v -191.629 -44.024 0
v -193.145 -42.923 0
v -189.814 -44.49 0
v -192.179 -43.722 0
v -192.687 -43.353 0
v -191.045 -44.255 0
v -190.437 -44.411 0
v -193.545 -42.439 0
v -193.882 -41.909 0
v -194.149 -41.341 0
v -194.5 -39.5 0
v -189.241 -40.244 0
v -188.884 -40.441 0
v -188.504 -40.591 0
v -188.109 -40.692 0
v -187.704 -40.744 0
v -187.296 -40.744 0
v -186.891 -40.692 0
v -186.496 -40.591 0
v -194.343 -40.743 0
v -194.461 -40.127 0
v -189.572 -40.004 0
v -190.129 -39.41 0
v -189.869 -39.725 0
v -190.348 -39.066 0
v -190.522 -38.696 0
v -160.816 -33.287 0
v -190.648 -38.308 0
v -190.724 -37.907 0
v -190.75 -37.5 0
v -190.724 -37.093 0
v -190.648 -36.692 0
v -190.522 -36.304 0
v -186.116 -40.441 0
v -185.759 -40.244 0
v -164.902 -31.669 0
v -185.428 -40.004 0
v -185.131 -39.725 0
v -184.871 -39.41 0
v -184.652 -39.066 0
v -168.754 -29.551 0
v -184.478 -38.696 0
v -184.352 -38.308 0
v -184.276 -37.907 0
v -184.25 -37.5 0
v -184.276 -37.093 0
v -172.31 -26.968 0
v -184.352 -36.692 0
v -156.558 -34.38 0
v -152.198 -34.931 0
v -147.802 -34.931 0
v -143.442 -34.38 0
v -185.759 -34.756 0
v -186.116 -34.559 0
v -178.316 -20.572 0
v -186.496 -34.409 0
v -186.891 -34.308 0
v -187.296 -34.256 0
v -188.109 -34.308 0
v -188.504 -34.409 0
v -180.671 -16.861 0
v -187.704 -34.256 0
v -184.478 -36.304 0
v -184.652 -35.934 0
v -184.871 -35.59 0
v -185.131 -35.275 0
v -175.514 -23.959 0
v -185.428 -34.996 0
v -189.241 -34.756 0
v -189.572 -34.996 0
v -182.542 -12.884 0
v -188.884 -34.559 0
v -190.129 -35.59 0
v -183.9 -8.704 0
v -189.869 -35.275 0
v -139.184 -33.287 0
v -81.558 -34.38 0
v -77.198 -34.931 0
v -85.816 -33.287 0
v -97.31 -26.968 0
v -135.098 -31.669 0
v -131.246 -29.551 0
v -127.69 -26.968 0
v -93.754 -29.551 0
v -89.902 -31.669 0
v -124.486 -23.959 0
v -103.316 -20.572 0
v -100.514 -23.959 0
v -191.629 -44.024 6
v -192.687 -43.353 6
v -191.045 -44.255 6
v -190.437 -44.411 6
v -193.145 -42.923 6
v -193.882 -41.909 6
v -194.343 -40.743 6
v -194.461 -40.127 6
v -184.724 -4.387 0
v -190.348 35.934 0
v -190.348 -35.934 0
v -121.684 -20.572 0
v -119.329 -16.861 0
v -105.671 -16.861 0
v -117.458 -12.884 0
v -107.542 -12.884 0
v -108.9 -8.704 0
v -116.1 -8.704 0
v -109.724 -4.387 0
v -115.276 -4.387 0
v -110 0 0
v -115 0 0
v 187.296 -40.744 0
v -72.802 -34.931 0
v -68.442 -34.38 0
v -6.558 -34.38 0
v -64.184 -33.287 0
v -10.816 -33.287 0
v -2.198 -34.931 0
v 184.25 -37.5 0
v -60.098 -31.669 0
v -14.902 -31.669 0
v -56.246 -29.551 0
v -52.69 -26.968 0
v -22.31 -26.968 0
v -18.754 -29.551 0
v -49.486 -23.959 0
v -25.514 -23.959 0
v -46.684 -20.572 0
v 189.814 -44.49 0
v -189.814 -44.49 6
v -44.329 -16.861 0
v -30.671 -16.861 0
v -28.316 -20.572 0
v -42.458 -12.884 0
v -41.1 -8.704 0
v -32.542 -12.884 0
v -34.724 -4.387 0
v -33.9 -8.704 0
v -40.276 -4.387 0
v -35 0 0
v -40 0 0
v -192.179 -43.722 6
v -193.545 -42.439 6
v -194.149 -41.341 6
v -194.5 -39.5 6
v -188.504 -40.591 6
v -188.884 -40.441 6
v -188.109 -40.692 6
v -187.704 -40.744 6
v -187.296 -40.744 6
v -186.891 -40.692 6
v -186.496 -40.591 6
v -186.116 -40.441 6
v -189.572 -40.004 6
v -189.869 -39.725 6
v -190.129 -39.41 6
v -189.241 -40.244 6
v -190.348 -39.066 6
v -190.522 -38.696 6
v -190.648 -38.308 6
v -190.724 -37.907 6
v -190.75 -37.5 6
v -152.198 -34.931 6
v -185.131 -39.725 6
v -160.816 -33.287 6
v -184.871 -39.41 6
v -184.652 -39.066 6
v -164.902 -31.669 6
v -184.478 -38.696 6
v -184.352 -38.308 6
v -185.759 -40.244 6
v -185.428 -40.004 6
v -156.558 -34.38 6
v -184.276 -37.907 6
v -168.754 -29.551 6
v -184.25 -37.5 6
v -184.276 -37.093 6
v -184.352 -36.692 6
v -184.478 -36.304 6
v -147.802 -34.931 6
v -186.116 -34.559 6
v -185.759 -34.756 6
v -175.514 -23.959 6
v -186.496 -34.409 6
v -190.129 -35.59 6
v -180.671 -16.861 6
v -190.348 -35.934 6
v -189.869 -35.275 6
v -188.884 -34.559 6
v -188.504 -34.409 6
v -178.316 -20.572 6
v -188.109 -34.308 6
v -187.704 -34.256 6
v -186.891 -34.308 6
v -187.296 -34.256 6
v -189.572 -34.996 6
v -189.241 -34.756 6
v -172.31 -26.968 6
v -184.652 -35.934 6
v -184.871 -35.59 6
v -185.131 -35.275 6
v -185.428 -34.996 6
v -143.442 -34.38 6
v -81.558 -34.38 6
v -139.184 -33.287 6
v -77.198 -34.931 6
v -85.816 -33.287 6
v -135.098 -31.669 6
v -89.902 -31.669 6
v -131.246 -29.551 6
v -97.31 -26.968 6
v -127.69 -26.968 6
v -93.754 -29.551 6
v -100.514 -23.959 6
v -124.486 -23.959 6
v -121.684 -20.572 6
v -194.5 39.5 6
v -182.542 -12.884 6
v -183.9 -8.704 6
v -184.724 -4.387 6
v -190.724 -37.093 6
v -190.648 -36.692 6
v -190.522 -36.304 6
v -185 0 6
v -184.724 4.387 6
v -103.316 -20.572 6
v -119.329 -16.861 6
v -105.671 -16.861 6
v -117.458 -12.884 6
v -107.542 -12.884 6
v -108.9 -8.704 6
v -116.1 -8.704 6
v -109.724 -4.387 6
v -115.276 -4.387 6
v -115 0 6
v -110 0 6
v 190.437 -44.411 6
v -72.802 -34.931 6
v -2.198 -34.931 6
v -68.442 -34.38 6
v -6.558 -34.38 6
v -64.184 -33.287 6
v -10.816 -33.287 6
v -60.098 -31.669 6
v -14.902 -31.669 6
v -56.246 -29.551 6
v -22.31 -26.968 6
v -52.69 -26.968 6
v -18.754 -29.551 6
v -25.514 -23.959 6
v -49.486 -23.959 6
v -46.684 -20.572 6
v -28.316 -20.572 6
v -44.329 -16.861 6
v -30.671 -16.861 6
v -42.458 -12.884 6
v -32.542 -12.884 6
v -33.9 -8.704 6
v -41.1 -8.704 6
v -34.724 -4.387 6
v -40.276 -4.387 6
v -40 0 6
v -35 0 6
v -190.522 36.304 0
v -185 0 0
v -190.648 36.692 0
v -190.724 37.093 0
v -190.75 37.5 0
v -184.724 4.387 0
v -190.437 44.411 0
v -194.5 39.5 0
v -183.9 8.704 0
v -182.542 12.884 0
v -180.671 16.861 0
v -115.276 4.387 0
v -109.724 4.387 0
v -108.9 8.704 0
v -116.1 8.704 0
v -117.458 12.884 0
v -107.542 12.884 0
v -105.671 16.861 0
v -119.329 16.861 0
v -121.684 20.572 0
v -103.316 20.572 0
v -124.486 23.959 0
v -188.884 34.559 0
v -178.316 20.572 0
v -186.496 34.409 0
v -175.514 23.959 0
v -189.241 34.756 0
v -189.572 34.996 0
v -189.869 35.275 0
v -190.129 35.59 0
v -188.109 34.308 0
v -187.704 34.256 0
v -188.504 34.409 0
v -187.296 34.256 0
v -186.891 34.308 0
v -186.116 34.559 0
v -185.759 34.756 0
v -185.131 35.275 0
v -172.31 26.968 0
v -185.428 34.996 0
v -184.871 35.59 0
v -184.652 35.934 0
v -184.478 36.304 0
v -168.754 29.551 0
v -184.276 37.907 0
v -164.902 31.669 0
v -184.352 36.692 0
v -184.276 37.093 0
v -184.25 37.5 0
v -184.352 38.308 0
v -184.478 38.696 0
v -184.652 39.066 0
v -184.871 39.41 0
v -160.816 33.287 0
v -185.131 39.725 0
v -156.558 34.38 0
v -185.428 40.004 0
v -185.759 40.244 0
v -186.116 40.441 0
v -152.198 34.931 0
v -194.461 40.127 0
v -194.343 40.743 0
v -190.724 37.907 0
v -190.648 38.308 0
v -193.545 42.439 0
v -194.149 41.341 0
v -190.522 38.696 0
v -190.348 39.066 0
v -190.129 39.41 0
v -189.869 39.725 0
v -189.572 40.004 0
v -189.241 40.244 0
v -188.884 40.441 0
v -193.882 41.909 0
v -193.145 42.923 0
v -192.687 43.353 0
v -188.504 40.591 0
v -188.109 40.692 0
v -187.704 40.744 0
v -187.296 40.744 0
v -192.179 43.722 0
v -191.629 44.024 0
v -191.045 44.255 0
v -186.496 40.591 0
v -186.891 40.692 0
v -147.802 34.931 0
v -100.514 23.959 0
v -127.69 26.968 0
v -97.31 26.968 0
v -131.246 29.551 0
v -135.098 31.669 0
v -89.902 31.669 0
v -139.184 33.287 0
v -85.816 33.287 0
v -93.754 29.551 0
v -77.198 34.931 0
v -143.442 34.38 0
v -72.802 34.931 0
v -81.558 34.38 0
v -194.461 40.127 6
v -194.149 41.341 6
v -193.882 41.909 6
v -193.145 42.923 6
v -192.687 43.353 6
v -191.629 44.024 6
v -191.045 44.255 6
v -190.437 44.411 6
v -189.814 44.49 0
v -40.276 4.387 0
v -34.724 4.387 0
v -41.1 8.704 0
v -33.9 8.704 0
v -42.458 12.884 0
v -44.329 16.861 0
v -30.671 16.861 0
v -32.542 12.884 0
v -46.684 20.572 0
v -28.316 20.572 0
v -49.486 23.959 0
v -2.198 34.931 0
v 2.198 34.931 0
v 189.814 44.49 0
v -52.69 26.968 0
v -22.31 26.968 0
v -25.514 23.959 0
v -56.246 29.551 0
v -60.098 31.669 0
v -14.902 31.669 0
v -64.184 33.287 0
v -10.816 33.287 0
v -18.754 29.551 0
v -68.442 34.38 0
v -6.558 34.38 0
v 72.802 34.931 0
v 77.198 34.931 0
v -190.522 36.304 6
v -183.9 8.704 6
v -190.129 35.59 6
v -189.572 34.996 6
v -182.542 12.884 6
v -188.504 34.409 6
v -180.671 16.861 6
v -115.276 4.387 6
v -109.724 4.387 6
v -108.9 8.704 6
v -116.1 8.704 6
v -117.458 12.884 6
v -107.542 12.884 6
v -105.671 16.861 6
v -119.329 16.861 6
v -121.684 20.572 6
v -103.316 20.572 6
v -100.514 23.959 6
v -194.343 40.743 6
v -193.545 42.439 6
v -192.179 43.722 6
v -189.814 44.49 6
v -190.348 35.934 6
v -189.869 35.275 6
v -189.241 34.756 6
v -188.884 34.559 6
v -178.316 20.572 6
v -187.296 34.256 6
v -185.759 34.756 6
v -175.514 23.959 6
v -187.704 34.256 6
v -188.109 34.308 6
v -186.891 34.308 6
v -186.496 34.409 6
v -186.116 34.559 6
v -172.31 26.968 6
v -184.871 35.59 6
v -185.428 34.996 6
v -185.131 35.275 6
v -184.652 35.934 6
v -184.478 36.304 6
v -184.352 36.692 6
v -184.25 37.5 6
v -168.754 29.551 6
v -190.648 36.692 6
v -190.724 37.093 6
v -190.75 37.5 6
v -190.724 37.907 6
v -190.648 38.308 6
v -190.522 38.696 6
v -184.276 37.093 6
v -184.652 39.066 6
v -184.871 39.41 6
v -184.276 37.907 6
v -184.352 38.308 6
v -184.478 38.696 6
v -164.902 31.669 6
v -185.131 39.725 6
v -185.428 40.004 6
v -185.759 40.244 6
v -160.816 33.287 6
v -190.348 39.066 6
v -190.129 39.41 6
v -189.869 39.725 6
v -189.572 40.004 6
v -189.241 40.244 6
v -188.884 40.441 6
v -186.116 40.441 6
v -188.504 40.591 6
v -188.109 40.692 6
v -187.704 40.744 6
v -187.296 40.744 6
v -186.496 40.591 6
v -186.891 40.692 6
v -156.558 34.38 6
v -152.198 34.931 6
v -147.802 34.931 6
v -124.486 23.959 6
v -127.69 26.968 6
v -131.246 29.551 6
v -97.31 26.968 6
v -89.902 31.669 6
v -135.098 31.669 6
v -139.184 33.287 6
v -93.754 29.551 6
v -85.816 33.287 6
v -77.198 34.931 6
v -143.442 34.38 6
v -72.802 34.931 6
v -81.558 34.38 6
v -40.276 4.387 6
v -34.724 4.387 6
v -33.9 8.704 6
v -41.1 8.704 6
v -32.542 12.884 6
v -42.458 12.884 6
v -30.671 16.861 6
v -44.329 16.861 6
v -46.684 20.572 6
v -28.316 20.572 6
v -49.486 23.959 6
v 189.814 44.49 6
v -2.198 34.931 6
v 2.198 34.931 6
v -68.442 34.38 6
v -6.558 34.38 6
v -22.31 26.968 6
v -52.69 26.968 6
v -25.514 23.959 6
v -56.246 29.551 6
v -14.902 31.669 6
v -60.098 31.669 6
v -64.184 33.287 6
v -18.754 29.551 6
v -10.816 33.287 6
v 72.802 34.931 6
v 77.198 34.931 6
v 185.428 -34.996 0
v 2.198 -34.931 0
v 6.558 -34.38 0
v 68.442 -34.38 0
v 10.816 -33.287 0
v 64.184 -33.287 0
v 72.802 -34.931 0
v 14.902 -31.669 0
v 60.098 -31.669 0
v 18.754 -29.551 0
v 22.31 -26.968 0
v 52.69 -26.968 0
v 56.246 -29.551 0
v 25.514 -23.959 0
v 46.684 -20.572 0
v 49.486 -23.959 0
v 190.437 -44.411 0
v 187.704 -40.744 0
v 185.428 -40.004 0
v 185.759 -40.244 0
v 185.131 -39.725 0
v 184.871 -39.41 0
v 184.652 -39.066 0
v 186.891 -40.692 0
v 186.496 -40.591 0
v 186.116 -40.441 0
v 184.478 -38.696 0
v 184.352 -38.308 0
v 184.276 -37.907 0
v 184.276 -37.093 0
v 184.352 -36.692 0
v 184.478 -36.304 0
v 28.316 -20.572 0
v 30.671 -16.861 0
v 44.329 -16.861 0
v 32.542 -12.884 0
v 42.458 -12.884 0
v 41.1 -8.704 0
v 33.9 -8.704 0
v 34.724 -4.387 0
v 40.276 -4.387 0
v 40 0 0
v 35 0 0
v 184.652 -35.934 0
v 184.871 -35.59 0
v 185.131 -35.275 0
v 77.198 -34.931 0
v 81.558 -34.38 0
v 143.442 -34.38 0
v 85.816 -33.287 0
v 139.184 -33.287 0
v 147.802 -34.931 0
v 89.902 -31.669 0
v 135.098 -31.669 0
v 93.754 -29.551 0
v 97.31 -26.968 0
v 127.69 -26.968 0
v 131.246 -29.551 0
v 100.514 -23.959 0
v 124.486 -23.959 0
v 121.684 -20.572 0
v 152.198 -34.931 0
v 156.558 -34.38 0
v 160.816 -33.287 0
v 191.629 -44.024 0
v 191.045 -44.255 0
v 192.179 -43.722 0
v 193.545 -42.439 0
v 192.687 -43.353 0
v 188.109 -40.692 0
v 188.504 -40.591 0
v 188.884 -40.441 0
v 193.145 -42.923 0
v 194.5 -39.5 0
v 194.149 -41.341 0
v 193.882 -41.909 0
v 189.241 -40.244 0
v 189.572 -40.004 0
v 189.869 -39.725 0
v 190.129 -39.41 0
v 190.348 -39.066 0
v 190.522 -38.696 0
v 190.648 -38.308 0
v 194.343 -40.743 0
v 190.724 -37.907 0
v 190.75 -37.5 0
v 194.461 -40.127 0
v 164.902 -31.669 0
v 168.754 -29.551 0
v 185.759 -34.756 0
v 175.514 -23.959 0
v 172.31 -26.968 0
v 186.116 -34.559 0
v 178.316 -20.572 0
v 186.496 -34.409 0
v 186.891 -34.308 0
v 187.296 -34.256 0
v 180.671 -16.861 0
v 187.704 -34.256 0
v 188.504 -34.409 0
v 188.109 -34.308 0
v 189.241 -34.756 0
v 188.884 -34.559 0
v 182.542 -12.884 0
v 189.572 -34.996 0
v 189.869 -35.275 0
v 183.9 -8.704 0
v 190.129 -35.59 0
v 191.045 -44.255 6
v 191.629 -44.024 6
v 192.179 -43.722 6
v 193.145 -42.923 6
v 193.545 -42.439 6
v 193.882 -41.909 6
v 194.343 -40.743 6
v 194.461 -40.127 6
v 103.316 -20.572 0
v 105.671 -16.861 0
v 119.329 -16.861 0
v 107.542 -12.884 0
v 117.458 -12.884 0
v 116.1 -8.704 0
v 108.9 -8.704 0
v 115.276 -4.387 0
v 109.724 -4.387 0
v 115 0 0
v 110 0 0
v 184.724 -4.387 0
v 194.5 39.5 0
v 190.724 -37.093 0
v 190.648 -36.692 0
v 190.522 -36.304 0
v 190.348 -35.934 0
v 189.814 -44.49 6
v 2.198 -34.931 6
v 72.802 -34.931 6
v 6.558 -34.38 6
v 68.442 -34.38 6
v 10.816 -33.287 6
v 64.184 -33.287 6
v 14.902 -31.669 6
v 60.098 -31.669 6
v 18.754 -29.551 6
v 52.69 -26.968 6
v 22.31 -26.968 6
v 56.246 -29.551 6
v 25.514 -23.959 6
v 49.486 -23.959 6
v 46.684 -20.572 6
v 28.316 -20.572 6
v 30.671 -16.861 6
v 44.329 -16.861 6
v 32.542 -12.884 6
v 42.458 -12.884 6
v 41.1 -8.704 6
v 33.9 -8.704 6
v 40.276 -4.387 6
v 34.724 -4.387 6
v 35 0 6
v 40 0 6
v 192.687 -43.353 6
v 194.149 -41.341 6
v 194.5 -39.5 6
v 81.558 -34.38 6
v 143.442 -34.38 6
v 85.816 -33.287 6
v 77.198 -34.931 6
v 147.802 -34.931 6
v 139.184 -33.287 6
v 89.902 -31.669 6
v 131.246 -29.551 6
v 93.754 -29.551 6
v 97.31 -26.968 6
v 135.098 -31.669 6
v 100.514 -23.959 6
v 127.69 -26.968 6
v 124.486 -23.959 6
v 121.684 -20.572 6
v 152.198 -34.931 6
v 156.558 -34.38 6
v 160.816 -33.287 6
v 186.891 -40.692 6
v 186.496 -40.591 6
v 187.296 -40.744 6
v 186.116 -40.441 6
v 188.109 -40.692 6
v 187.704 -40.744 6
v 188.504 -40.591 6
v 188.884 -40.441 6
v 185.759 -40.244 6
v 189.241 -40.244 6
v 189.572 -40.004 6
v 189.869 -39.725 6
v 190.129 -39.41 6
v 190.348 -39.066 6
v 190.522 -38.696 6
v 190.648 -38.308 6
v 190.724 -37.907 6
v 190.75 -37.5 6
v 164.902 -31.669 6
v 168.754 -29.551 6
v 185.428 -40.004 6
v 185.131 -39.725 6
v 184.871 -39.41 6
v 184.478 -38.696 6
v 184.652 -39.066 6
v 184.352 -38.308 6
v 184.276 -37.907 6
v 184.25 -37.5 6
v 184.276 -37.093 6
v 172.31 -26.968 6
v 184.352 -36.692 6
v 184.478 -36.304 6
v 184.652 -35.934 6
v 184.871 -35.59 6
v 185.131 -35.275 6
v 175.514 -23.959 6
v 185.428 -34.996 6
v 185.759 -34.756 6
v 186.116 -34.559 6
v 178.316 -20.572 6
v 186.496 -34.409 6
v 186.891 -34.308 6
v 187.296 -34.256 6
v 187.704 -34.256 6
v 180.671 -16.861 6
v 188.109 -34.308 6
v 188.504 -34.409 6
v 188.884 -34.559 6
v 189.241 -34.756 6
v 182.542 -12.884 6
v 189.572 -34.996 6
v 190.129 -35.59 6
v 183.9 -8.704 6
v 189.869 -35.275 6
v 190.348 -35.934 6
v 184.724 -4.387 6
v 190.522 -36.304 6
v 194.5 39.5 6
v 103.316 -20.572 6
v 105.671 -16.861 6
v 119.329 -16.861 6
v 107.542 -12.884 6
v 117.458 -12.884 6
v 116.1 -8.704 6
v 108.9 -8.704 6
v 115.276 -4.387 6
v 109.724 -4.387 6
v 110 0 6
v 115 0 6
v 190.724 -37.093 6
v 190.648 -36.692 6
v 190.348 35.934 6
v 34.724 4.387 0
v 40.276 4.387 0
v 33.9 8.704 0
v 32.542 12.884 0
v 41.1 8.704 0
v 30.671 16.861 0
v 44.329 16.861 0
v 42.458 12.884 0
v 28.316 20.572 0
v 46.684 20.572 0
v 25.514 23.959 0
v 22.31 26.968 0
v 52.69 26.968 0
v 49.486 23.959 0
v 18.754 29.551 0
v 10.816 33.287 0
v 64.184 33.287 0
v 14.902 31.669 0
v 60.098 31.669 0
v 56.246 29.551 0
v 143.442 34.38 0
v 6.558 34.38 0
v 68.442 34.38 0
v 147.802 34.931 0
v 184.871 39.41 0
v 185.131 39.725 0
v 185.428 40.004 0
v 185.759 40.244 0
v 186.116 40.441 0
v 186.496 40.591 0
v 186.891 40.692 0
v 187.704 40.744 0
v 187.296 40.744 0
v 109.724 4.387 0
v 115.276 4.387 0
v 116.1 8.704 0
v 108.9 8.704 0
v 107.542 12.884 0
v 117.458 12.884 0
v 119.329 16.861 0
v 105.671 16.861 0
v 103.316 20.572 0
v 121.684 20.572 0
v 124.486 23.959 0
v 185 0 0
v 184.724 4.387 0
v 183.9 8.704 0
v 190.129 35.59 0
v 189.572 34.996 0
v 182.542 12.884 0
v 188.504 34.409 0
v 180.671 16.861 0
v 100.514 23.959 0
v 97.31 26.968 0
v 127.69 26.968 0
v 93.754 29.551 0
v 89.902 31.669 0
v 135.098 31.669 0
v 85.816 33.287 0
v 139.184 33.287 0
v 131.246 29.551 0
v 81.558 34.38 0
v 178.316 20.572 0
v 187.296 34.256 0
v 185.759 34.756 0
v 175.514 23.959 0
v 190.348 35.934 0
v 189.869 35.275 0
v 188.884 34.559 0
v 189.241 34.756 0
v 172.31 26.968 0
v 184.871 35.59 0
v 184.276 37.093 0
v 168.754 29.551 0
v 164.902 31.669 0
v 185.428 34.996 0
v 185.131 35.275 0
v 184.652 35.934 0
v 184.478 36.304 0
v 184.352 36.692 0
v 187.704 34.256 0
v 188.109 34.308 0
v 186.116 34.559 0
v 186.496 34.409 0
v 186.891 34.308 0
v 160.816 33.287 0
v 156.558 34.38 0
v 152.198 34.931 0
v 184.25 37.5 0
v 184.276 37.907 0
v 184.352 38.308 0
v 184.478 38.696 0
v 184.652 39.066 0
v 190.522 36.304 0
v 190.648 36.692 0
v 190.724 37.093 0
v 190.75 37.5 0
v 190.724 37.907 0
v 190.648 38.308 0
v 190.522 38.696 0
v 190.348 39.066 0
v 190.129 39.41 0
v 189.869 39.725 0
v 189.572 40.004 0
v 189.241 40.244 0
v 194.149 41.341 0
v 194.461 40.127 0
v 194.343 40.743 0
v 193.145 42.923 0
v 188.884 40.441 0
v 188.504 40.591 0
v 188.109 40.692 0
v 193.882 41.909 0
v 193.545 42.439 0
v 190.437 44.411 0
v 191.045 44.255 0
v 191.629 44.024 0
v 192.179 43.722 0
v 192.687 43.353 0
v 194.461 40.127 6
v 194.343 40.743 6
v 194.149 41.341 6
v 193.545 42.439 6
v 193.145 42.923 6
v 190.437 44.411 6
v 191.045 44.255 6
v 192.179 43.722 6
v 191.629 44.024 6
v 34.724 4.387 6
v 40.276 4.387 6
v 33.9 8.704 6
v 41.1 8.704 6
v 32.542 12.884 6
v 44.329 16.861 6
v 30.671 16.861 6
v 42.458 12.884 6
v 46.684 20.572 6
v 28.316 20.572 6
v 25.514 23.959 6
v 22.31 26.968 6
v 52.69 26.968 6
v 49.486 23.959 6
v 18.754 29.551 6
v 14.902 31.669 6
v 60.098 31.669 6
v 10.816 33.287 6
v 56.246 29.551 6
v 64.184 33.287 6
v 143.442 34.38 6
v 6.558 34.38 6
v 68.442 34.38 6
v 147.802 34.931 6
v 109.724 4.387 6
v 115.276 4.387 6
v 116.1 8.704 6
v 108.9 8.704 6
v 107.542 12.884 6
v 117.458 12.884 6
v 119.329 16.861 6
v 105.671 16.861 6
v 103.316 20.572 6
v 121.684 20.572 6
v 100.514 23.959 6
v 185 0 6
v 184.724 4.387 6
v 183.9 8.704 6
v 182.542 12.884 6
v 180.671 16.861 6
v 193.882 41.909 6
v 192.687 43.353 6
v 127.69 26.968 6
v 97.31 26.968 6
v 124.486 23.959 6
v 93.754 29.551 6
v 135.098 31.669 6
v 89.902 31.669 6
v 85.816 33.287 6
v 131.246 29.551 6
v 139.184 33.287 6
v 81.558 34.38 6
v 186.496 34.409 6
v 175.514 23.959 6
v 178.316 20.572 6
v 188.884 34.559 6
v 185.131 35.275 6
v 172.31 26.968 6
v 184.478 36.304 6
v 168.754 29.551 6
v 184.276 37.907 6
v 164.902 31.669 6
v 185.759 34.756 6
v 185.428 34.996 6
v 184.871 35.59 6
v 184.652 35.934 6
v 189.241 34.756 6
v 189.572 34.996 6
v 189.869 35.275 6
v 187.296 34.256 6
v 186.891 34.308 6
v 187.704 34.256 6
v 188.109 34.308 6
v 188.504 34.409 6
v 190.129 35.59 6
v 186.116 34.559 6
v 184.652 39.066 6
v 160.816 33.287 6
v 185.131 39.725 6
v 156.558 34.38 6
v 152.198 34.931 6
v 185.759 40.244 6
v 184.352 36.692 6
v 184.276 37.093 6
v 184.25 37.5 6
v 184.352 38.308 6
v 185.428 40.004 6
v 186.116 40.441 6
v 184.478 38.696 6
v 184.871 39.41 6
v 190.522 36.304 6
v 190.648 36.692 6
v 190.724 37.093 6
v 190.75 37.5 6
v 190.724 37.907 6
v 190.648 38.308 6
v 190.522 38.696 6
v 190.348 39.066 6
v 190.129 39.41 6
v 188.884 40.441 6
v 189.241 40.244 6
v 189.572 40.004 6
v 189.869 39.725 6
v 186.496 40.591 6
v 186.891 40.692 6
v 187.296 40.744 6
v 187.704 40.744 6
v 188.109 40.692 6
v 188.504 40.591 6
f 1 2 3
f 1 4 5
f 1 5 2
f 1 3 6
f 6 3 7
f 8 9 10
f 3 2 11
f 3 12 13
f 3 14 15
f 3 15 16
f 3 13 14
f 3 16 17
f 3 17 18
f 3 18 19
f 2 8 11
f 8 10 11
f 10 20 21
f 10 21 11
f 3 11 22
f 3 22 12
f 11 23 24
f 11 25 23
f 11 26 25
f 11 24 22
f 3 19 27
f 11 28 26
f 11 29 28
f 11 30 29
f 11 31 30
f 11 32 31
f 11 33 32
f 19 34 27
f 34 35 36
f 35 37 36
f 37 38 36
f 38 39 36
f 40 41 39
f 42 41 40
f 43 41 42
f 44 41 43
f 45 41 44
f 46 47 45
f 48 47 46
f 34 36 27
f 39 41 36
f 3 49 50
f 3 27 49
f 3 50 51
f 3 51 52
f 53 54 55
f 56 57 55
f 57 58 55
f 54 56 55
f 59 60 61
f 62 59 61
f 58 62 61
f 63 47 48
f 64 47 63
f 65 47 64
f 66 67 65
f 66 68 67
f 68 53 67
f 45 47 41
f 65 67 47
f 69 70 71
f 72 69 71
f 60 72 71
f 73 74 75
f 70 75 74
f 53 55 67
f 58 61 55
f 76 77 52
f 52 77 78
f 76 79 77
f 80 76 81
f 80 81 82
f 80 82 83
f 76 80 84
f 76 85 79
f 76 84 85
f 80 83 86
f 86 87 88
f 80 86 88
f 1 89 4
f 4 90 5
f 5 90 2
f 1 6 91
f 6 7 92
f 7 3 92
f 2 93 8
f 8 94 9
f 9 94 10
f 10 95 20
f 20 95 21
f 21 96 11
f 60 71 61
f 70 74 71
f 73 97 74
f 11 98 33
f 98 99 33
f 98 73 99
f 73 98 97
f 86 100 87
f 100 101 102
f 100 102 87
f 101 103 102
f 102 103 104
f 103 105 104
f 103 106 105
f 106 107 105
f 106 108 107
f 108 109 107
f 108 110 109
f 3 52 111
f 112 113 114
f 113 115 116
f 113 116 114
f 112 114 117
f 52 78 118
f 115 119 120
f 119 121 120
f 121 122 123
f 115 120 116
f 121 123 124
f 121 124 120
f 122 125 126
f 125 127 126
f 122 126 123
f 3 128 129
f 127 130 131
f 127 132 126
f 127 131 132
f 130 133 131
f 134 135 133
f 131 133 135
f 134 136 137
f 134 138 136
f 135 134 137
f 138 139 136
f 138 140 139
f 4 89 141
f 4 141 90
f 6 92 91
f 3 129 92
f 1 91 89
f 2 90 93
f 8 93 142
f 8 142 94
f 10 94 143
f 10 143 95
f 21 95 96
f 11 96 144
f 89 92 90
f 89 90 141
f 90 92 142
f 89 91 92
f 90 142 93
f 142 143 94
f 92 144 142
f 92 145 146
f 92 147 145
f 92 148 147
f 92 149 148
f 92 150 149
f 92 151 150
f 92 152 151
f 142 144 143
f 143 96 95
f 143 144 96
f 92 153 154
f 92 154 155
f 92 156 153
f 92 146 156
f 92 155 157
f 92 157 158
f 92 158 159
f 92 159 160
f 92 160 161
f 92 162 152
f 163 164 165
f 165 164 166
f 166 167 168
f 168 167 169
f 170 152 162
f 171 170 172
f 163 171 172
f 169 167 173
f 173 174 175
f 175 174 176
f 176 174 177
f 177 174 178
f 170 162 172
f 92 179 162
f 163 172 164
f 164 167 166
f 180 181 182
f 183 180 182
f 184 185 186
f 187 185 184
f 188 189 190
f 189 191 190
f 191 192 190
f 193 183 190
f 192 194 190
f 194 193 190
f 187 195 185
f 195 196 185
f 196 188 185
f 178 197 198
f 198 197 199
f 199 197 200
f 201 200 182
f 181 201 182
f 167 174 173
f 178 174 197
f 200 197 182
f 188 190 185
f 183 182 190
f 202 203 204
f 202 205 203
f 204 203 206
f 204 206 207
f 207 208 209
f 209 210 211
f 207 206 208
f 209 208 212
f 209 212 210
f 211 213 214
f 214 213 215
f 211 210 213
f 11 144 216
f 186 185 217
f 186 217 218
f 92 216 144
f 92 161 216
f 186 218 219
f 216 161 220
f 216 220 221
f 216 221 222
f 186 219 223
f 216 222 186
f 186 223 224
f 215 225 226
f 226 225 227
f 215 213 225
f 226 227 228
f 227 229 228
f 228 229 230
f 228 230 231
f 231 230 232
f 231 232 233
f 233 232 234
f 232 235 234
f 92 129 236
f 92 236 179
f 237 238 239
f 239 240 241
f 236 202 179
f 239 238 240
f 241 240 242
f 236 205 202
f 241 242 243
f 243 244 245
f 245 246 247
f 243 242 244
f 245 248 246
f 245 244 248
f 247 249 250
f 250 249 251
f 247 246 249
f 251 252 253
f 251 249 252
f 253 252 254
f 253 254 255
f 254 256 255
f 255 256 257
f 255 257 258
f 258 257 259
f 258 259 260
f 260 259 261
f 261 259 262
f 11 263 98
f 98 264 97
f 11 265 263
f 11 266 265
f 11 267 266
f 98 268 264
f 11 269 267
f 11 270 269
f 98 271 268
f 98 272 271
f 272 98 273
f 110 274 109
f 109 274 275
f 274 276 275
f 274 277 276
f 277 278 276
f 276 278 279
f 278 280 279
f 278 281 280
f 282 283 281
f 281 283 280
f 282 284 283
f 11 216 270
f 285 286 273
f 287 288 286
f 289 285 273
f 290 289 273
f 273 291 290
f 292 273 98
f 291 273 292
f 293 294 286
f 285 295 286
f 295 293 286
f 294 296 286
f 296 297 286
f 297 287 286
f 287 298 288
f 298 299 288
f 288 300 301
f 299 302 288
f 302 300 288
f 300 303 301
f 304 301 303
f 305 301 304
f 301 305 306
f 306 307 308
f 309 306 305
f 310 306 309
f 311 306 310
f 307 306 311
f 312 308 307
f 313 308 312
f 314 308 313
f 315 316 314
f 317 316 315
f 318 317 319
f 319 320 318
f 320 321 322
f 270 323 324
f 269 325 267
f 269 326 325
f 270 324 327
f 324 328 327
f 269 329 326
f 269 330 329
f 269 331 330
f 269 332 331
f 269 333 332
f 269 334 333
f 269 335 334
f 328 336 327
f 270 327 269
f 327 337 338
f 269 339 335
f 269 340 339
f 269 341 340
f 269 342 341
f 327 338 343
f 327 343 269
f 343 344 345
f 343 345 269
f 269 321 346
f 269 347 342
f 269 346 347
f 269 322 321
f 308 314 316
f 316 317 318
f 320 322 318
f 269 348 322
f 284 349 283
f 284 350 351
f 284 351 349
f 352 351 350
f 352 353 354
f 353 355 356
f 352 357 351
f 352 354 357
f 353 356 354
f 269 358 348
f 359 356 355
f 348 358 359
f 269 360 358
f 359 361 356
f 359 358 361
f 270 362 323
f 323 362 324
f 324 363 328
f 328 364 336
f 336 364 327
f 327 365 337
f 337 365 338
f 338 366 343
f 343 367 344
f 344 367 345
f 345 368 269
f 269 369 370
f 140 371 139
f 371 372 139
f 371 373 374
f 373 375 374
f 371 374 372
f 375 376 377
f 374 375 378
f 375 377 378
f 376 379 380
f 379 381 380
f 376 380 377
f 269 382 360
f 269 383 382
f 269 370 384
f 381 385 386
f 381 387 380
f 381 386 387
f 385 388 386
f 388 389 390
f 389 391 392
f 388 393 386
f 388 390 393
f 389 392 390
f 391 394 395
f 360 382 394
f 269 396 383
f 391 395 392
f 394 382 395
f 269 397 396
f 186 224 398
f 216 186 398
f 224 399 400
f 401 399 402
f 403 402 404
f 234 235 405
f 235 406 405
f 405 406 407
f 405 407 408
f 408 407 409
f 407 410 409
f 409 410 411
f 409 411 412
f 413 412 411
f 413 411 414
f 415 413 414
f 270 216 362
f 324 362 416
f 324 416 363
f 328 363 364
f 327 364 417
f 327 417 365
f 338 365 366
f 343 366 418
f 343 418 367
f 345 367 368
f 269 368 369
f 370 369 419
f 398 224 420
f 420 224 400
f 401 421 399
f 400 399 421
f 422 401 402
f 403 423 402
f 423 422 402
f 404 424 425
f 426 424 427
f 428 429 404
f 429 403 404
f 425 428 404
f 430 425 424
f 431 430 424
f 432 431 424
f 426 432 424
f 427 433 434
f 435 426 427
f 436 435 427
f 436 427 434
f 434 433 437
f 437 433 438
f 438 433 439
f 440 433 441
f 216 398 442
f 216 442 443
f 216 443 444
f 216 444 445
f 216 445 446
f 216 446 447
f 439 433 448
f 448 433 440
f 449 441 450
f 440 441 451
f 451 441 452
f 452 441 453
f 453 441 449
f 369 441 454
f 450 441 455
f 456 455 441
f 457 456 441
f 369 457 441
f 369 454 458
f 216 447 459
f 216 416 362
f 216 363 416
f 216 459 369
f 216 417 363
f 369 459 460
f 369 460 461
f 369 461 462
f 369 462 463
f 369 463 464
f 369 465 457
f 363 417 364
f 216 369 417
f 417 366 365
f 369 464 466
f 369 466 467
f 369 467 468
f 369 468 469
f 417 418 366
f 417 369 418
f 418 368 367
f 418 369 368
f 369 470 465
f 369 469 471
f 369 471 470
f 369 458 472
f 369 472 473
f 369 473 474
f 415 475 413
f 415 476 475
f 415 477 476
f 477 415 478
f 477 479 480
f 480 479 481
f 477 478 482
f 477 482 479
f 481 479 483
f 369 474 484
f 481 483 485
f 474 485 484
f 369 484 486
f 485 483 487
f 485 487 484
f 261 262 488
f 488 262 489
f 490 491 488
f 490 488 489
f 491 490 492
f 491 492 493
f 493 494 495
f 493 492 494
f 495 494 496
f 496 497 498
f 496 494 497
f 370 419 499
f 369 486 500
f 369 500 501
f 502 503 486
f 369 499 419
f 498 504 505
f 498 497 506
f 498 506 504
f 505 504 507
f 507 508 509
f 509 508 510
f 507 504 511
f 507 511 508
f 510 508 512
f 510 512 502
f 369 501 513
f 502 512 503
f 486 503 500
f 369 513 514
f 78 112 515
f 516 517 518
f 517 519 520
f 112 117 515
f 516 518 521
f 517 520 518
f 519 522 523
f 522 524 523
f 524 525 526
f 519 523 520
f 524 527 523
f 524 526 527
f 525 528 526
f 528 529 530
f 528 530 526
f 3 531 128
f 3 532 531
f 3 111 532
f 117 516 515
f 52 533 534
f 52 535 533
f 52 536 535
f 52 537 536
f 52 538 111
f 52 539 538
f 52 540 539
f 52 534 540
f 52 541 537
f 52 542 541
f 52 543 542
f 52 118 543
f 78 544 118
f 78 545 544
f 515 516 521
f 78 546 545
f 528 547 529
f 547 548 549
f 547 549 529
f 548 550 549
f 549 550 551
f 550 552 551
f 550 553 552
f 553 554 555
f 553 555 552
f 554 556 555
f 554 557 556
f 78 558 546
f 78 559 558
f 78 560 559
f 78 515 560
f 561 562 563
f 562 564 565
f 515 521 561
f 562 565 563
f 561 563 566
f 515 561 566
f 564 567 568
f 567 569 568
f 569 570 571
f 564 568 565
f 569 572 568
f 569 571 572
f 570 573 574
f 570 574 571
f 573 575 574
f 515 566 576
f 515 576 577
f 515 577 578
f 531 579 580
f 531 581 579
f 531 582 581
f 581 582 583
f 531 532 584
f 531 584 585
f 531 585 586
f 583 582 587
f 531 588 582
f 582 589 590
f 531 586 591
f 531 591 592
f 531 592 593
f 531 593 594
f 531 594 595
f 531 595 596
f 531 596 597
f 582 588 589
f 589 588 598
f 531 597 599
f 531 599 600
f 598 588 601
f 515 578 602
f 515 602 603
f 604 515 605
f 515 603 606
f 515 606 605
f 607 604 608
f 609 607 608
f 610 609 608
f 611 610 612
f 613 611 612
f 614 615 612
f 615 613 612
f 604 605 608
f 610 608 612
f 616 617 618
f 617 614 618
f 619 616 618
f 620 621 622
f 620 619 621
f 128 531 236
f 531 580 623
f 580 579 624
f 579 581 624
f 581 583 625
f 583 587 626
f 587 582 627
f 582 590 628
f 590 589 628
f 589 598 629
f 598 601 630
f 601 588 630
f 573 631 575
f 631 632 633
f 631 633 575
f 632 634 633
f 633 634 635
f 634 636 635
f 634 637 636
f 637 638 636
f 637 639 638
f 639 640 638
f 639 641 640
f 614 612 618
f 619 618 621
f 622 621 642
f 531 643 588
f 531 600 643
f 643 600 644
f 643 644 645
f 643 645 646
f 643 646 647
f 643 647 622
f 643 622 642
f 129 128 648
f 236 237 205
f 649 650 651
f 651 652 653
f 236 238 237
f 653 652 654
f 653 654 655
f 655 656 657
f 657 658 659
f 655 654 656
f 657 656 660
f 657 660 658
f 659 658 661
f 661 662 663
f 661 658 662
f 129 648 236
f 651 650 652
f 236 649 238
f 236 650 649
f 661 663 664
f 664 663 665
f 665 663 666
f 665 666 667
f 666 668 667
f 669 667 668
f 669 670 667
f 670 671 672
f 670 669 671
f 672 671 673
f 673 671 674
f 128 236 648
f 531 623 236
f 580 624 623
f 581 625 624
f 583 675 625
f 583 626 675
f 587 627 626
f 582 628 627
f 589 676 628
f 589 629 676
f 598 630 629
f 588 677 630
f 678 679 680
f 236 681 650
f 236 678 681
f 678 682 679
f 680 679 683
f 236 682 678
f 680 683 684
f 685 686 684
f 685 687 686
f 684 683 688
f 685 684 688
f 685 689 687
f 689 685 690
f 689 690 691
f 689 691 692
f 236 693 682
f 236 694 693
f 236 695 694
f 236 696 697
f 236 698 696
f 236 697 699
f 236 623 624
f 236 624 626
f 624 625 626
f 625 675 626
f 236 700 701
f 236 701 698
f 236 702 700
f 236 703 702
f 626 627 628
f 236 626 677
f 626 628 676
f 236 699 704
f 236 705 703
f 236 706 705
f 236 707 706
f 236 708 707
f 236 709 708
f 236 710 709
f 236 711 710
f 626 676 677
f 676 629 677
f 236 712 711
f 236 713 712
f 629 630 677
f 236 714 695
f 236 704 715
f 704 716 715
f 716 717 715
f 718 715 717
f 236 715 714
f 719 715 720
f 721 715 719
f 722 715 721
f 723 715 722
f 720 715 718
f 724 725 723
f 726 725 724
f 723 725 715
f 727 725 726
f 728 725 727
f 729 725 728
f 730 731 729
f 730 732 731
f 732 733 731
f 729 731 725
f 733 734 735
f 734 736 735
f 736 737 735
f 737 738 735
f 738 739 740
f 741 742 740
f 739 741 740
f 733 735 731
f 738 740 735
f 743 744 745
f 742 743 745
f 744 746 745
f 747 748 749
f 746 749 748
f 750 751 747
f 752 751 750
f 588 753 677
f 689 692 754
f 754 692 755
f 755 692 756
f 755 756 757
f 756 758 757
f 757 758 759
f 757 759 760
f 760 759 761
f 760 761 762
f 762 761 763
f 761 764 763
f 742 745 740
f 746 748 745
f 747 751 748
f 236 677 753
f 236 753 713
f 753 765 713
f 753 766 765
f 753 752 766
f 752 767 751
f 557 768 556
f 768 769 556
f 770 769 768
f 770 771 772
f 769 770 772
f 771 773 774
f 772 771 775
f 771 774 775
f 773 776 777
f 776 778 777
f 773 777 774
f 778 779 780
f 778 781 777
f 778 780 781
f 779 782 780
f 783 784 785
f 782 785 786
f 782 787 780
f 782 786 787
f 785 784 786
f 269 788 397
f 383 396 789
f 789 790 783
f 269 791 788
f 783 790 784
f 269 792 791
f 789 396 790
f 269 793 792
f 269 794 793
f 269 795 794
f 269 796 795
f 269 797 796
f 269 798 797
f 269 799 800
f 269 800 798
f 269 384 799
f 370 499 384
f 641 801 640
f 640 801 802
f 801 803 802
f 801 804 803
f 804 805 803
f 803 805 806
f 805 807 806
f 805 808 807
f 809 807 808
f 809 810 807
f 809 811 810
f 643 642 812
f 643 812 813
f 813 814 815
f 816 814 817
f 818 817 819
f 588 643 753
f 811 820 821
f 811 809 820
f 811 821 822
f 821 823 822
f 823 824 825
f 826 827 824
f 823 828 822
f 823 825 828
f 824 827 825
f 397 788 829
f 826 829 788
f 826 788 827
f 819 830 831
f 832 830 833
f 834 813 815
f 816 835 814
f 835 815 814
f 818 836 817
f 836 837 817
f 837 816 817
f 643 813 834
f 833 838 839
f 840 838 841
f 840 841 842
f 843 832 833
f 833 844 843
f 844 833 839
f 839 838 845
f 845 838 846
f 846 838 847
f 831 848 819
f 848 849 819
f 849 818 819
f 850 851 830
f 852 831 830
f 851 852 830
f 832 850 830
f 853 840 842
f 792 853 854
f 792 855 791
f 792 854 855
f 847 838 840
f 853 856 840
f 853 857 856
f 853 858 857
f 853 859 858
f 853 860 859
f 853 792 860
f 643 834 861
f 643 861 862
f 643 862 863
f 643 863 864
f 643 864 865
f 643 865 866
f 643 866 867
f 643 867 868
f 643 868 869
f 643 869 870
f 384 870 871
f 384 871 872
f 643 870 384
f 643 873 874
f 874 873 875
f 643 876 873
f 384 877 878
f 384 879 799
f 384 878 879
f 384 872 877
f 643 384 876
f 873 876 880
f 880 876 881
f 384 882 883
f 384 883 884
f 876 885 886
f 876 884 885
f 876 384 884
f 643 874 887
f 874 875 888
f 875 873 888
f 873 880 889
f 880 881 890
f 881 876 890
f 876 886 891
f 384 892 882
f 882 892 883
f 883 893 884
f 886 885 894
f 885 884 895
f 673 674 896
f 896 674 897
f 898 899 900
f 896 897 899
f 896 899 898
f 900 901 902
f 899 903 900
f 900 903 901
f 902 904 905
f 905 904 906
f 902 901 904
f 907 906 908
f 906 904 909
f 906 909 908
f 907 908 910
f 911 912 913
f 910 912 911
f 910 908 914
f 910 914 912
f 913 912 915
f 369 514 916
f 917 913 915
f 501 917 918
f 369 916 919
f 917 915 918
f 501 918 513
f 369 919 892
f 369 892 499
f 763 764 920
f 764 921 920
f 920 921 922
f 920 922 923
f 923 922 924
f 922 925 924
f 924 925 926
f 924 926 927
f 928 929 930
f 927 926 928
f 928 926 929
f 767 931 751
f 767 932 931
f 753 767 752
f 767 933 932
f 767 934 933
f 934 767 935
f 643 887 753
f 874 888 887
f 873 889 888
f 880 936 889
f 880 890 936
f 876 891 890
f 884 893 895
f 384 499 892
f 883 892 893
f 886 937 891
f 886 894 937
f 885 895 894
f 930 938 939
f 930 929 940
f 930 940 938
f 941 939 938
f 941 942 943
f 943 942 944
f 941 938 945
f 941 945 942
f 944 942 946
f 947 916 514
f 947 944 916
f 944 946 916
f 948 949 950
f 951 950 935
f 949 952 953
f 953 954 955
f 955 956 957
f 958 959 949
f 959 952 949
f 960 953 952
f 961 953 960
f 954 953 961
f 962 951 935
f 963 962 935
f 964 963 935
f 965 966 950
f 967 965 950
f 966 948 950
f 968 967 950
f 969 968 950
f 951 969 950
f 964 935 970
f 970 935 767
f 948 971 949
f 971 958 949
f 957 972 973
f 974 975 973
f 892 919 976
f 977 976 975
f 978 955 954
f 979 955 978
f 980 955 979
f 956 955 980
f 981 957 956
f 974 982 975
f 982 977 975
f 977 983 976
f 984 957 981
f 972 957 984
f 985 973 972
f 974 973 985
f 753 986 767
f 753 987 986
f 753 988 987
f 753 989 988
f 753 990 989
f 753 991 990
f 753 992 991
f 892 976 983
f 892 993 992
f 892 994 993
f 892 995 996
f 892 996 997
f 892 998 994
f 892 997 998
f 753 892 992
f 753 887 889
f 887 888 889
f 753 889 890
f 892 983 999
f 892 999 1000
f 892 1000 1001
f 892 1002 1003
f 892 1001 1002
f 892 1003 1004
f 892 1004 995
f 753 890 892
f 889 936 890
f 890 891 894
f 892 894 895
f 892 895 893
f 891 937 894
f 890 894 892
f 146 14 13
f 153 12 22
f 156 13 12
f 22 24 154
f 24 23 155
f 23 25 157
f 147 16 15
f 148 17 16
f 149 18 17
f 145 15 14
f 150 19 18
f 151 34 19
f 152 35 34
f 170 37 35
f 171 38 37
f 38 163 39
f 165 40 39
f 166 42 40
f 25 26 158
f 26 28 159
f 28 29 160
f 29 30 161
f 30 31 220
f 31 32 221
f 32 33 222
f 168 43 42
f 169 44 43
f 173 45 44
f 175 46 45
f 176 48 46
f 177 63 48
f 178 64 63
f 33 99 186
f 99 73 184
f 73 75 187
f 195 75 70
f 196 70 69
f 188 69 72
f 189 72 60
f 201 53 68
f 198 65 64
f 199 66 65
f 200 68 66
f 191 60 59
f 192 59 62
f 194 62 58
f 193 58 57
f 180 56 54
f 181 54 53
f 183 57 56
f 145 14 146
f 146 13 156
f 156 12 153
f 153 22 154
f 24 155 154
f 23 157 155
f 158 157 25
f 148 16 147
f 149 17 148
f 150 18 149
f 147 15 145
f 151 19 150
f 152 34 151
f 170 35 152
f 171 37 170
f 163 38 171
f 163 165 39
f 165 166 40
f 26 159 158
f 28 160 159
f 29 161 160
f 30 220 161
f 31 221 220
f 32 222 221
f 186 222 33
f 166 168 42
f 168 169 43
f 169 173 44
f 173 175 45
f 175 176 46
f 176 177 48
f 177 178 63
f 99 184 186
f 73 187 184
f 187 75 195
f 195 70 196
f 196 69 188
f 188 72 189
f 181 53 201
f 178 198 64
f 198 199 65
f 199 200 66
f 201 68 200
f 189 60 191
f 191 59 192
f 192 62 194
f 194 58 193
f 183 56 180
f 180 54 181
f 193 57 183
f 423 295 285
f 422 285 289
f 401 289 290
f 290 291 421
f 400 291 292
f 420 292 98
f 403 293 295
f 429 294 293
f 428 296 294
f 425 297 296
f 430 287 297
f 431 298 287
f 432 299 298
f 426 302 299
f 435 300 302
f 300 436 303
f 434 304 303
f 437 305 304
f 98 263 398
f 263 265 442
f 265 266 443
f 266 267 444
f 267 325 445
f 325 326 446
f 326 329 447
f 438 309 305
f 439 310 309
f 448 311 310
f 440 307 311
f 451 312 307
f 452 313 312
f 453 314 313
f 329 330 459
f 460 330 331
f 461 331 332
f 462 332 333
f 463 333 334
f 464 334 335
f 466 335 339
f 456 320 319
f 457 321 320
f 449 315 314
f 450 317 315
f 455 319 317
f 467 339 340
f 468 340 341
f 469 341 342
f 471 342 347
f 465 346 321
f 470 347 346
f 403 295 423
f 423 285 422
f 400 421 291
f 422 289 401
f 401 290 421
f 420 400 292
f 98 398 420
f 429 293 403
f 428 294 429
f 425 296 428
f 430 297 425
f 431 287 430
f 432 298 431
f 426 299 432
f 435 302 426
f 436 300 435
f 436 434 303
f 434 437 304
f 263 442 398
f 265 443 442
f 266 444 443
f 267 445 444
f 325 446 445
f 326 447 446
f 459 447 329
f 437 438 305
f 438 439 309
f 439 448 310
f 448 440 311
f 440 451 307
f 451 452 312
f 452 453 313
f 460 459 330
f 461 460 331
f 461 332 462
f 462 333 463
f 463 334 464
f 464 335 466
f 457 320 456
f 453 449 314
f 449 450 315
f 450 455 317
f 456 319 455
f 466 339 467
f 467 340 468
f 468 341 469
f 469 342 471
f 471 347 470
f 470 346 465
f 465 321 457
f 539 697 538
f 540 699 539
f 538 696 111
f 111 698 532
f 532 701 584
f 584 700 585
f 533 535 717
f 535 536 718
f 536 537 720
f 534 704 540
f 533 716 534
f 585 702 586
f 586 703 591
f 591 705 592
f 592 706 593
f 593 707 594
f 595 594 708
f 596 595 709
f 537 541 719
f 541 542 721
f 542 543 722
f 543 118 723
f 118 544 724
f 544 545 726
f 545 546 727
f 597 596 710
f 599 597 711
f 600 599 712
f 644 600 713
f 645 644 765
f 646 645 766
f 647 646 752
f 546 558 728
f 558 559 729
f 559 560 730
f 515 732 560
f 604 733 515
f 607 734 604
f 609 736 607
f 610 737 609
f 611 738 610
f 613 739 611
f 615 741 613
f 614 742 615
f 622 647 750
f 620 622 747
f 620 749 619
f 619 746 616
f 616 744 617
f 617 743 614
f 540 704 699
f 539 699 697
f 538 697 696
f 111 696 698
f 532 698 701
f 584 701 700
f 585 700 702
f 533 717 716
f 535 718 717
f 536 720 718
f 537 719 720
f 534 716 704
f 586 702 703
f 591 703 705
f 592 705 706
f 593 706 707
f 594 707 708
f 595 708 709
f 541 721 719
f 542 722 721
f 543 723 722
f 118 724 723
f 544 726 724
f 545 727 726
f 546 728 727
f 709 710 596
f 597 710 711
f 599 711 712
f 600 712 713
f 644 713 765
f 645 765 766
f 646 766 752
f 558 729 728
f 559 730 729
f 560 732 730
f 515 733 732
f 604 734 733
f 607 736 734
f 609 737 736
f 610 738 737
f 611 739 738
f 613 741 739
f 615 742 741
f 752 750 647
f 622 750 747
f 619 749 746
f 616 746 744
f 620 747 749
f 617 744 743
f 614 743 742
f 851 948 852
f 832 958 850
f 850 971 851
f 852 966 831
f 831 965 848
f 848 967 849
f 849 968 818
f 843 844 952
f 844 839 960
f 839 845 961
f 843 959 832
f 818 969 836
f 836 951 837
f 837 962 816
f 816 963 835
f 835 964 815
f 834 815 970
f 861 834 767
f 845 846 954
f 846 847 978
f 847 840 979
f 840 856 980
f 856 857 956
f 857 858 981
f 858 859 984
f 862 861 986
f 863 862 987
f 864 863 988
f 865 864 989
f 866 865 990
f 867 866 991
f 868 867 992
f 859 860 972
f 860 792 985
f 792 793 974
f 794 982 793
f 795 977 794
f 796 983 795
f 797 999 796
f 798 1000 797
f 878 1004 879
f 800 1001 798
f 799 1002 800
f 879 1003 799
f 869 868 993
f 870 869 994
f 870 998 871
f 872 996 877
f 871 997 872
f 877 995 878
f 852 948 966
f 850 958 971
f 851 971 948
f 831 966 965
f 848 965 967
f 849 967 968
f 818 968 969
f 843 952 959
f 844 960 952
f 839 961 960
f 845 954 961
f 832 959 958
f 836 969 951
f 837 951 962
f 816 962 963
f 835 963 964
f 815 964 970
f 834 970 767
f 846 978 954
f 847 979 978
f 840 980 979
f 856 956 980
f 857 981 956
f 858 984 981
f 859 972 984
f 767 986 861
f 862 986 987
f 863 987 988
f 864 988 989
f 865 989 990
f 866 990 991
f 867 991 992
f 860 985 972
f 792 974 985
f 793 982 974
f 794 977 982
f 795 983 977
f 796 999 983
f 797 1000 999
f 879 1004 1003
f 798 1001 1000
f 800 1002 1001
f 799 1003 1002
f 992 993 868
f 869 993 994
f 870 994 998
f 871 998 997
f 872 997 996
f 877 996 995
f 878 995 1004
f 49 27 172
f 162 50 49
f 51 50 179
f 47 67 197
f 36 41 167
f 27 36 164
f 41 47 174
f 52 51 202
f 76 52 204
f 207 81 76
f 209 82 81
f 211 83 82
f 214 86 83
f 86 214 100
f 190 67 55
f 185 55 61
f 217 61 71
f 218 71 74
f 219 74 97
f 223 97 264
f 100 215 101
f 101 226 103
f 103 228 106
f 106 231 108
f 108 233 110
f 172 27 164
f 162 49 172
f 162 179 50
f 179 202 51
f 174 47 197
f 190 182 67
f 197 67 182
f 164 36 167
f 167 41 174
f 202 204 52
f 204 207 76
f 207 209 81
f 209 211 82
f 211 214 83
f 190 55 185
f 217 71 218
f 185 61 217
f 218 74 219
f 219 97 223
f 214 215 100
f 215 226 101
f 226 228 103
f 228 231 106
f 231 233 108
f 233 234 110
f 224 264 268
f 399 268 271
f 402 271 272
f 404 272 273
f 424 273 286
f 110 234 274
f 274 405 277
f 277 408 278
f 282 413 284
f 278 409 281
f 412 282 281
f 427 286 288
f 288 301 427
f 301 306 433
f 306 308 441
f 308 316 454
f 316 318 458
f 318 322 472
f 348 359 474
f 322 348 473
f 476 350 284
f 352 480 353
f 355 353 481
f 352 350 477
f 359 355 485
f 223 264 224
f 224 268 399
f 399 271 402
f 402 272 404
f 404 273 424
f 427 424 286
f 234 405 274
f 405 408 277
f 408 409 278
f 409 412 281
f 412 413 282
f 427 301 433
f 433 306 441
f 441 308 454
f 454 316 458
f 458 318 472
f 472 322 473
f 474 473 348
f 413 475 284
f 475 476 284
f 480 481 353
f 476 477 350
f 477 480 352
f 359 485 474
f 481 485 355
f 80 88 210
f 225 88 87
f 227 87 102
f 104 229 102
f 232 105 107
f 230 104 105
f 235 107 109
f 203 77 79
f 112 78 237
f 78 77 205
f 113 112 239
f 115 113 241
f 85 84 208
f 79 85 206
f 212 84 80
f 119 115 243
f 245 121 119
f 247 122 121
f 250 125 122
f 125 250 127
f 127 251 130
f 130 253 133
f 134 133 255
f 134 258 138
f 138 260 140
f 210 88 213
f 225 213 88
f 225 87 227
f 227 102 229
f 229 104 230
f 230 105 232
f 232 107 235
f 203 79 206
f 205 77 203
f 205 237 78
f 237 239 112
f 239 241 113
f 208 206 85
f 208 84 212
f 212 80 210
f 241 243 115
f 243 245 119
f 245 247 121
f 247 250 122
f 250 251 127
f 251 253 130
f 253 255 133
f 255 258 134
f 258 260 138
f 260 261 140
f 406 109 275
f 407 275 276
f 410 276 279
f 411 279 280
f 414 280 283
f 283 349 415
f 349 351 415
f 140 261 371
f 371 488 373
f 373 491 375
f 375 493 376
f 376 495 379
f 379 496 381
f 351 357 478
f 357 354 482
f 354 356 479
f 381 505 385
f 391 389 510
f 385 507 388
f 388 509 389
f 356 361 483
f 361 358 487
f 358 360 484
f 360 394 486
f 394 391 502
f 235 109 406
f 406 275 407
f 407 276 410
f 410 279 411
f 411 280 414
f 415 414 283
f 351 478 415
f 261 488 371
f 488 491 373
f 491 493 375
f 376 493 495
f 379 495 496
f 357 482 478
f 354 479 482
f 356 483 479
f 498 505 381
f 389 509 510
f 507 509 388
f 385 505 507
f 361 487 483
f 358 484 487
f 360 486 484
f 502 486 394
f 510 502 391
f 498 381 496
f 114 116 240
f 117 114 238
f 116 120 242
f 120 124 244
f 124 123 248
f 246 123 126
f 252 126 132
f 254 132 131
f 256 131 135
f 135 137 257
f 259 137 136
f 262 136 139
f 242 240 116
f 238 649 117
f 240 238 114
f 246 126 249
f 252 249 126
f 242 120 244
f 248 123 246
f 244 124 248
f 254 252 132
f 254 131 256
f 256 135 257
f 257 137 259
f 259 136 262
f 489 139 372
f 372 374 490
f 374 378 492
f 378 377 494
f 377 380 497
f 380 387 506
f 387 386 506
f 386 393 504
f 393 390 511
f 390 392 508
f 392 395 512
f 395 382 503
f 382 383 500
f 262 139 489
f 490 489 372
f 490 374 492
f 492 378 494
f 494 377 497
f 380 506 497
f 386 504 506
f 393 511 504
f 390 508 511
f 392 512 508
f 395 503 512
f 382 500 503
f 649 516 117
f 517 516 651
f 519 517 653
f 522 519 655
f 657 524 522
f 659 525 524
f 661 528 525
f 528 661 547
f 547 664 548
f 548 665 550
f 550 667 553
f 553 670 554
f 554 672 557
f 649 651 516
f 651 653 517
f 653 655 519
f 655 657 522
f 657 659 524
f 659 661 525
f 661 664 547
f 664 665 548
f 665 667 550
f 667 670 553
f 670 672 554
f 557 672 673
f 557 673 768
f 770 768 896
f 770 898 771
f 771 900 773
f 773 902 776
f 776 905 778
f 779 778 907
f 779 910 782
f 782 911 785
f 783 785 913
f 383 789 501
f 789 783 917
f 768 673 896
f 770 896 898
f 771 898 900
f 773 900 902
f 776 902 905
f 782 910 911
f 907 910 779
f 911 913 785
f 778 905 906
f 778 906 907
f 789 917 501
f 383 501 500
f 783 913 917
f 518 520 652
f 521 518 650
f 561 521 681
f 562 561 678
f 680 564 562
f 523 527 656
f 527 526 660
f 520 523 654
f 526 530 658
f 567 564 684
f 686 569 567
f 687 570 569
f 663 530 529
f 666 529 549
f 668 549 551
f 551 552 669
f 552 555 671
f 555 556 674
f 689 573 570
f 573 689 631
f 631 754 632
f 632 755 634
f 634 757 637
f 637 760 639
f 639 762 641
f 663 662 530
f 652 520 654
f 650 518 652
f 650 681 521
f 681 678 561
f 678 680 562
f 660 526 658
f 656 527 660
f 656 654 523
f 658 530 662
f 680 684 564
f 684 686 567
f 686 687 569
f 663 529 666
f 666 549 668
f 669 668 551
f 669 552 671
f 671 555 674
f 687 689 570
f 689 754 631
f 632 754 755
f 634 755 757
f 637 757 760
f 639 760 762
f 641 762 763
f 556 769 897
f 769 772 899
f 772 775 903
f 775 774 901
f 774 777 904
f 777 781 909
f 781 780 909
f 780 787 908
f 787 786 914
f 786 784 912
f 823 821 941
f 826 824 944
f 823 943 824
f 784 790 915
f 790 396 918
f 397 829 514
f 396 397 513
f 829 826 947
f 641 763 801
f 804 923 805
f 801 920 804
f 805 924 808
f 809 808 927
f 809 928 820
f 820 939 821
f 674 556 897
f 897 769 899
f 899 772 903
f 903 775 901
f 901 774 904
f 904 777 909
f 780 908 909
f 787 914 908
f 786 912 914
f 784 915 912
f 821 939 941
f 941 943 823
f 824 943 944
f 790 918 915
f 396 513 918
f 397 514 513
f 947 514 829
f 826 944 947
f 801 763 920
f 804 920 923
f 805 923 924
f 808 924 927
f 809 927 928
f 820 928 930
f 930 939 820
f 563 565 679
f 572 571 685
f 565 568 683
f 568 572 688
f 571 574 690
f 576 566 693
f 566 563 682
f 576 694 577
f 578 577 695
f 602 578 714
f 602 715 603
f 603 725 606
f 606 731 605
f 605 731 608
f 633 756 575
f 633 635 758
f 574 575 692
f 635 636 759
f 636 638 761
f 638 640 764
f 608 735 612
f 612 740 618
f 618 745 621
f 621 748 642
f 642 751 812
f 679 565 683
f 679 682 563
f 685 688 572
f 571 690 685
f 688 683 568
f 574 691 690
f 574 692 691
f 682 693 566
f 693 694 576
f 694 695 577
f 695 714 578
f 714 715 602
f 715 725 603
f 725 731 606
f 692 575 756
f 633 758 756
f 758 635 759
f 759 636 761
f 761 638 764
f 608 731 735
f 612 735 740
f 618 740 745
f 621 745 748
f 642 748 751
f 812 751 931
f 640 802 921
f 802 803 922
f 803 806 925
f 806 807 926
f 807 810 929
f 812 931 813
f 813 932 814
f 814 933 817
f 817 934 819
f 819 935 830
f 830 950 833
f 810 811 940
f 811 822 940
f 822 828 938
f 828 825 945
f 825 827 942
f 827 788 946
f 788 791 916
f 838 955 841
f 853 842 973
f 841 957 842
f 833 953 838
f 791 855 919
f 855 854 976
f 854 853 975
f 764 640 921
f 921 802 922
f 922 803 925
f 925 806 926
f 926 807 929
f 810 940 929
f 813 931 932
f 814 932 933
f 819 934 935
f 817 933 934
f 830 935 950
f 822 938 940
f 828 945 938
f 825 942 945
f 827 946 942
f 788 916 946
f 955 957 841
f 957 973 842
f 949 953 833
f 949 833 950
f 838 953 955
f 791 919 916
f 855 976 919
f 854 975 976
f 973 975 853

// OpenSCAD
$fn = 50;

difference() {
	union() {
		hull() {
			translate(v = [-189.5, 39.5, 0]) {
				cylinder(h = 6, r = 5);
			}
			translate(v = [189.5, 39.5, 0]) {
				cylinder(h = 6, r = 5);
			}
			translate(v = [-189.5, -39.5, 0]) {
				cylinder(h = 6, r = 5);
			}
			translate(v = [189.5, -39.5, 0]) {
				cylinder(h = 6, r = 5);
			}
		}
	}
	union() {
		translate(v = [-187.5, -37.5, -100.0]) {
			cylinder(h = 200, r = 3.25);
		}
		translate(v = [-187.5, 37.5, -100.0]) {
			cylinder(h = 200, r = 3.25);
		}
		translate(v = [187.5, -37.5, -100.0]) {
			cylinder(h = 200, r = 3.25);
		}
		translate(v = [187.5, 37.5, -100.0]) {
			cylinder(h = 200, r = 3.25);
		}
		translate(v = [-187.5, -37.5, -100.0]) {
			cylinder(h = 200, r = 1.8);
		}
		translate(v = [-187.5, 37.5, -100.0]) {
			cylinder(h = 200, r = 1.8);
		}
		translate(v = [187.5, -37.5, -100.0]) {
			cylinder(h = 200, r = 1.8);
		}
		translate(v = [187.5, 37.5, -100.0]) {
			cylinder(h = 200, r = 1.8);
		}
		translate(v = [-150.0, 0, 0.0]) {
			cylinder(h = 6, r = 35.0);
		}
		translate(v = [-75.0, 0, 0.0]) {
			cylinder(h = 6, r = 35.0);
		}
		cylinder(h = 6, r = 35.0);
		translate(v = [75.0, 0, 0.0]) {
			cylinder(h = 6, r = 35.0);
		}
		translate(v = [150.0, 0, 0.0]) {
			cylinder(h = 6, r = 35.0);
		}
	}
}
